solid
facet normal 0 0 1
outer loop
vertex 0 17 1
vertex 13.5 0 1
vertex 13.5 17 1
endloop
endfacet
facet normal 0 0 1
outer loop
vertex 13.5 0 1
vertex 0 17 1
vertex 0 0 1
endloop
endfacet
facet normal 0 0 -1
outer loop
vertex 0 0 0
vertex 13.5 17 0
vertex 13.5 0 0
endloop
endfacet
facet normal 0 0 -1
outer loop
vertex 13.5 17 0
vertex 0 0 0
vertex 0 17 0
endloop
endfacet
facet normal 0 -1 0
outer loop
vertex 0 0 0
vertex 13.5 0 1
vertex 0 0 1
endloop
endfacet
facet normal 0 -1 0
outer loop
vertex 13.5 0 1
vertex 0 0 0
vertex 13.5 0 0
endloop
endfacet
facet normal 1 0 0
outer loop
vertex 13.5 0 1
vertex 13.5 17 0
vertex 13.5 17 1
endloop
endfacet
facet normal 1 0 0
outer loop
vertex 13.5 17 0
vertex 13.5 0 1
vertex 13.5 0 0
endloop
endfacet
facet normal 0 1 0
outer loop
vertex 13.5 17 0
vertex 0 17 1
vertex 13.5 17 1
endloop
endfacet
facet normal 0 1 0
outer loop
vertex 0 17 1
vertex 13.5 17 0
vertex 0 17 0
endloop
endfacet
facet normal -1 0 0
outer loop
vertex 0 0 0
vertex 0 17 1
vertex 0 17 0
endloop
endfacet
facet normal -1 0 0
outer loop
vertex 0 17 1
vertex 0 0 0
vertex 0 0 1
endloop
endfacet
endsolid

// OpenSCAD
/* Warning, this is a very basic generator with a lot of approximation 
input data : [MODULE, ZTX, 13.5x17mm, 41, , A, C04-10053A]
generated by com.zoubworld.electronics.cad.model3d.Basic
Date : Sun Feb 15 10:50:49 CET 2026
*/

//body
color("black")
translate([0,0,0])
cube([13.5,17.0,1.0], center=false);
